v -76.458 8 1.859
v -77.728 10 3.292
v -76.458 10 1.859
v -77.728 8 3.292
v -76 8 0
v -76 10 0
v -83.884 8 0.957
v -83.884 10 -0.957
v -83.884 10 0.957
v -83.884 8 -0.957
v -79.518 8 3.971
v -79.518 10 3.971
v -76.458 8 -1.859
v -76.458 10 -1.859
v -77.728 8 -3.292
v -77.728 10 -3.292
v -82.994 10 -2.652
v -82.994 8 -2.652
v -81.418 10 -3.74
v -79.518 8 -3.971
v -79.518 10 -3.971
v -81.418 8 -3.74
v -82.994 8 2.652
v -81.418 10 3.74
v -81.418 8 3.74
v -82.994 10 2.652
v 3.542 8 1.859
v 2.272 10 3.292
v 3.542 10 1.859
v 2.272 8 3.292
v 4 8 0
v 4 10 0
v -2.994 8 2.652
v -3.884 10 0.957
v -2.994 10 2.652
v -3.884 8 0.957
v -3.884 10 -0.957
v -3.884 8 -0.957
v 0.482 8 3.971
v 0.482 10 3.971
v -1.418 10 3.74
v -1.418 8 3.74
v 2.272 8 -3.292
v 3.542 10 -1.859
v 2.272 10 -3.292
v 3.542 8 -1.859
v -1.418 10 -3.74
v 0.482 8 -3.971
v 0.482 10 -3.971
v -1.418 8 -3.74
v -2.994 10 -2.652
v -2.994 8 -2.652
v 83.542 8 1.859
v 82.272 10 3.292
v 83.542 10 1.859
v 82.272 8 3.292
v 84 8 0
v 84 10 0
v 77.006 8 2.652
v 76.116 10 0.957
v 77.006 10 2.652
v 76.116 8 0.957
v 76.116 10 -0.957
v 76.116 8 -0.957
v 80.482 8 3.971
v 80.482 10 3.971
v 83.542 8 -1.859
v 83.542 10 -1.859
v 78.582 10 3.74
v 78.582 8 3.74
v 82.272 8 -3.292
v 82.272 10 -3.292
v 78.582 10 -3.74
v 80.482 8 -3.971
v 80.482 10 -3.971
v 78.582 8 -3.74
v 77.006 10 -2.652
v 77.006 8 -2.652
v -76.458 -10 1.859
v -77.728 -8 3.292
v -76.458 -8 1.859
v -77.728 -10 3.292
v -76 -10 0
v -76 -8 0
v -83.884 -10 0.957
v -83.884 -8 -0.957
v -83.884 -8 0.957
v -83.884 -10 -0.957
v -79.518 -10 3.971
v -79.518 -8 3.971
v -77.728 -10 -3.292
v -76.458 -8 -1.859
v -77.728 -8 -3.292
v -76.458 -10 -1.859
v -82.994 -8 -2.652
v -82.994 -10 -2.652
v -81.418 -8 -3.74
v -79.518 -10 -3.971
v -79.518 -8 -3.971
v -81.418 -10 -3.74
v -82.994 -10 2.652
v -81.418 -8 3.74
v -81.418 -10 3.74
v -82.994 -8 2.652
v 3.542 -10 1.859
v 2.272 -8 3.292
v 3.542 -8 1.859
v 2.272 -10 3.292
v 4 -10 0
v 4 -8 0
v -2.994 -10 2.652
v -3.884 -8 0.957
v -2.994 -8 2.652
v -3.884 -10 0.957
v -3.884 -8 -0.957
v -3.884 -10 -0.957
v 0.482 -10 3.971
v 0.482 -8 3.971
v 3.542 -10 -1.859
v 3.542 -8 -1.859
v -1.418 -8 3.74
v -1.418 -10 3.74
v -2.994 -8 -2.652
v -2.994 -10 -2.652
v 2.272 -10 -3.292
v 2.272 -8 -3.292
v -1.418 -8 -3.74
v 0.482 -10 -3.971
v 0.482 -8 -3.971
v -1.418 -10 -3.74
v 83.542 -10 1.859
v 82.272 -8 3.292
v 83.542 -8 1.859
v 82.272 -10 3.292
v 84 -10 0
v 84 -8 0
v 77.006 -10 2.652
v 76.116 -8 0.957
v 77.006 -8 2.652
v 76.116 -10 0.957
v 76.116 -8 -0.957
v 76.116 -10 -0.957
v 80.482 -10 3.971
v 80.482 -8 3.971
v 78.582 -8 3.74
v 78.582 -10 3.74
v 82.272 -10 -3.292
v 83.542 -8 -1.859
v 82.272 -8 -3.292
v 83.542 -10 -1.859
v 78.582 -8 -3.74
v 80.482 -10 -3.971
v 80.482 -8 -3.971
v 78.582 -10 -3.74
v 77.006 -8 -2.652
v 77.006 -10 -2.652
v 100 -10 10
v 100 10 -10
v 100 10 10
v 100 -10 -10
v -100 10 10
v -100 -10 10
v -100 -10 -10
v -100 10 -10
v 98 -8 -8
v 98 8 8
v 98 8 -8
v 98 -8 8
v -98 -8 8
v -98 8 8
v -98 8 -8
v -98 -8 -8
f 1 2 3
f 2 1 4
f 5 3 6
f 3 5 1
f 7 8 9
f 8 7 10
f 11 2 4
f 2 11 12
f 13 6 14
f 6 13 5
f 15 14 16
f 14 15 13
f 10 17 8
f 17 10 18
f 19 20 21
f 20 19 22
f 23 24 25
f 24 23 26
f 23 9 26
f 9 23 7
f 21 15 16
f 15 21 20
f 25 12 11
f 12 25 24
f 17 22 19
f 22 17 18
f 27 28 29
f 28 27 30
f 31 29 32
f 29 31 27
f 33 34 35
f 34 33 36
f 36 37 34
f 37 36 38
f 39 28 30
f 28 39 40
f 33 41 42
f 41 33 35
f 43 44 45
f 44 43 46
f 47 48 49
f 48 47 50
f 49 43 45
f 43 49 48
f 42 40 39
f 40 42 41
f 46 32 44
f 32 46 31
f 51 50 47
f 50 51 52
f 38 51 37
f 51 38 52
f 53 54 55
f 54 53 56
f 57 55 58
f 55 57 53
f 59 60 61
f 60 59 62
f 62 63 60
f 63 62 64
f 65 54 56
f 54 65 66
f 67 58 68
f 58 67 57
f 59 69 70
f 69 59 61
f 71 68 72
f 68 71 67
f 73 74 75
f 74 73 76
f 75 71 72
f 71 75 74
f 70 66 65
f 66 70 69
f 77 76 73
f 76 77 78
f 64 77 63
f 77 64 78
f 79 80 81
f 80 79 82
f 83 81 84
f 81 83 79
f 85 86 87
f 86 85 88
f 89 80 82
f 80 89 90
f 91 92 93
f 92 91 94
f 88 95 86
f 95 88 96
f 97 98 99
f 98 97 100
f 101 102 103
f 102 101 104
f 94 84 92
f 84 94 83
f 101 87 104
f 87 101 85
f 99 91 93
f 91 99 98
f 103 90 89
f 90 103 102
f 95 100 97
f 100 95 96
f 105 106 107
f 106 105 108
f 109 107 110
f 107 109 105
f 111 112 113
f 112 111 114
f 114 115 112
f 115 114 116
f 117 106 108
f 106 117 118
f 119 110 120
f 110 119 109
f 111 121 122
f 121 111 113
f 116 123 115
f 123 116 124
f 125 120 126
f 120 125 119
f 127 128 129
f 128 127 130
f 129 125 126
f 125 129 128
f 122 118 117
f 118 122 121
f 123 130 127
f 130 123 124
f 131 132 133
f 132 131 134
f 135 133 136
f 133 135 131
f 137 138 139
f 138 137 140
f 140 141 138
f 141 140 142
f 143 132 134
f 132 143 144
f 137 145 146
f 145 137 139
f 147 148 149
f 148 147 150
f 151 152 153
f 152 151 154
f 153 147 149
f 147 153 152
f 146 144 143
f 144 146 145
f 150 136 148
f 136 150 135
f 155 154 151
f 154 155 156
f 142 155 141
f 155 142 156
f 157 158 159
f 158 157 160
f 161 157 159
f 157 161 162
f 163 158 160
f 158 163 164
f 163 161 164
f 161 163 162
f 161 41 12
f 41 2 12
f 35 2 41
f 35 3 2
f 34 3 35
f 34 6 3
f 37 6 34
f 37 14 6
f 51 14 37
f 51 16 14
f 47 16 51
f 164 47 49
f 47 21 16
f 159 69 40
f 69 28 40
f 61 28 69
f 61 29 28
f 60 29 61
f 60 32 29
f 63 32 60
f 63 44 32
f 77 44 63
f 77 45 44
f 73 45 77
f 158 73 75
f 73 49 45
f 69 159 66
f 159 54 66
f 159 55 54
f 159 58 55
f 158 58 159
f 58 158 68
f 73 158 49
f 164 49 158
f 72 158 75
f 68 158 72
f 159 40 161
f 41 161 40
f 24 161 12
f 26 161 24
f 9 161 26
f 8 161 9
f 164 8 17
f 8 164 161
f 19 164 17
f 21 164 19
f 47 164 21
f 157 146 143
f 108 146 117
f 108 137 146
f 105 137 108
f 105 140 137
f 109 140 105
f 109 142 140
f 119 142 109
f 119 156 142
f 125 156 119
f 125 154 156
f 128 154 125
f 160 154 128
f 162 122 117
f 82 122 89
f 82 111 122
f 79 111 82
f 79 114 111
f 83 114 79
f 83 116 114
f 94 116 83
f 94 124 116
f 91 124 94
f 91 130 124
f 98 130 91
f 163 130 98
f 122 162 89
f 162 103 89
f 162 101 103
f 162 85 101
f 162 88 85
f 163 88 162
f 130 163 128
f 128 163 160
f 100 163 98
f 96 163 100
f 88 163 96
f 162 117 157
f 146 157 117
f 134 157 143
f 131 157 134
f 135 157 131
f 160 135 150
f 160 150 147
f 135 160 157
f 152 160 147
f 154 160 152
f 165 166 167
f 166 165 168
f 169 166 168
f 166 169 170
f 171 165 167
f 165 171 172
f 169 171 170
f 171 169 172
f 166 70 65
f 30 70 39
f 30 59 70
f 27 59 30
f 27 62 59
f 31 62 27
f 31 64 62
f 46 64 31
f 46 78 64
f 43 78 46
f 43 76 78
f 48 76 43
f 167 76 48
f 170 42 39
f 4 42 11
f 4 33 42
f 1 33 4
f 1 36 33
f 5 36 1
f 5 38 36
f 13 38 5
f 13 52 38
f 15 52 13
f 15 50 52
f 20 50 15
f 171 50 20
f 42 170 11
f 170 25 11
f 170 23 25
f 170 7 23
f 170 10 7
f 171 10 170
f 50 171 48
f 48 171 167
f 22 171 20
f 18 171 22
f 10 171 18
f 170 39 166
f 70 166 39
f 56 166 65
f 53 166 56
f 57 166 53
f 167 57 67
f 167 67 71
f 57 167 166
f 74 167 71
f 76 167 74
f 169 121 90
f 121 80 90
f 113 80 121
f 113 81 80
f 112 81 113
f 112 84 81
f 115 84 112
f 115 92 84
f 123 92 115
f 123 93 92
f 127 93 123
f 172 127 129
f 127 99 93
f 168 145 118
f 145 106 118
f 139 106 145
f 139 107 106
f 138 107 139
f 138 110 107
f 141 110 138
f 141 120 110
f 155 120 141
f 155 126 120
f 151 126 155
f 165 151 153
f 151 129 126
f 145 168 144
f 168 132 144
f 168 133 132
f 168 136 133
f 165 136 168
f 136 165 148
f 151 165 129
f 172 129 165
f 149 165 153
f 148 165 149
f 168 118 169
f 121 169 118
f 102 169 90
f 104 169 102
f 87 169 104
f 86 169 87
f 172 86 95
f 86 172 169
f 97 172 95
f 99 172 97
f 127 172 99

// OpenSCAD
// Parameters for the rectangular hollow component
length = 200; // Increased length to match the original model
width = 20;   // Outer width of the prism
height = 20;  // Outer height of the prism
thickness = 2; // Wall thickness of the hollow prism
hole_diameter = 8; // Diameter of the circular holes
hole_spacing = 80; // Adjusted spacing between the holes to match the original model

module rectangular_hollow_component() {
    // Outer rectangular prism
    difference() {
        cube([length, width, height], center = true);
        
        // Inner hollow space
        translate([0, 0, 0])
            cube([length - 2 * thickness, width - 2 * thickness, height - 2 * thickness], center = true);
        
        // Circular holes on one face
        for (i = [-1, 0, 1]) { // Adjusted to create evenly spaced holes along the length
            translate([i * hole_spacing, width / 2, 0])
                rotate([90, 0, 0])
                    cylinder(r = hole_diameter / 2, h = width + 1, center = true);
        }
        
        // Circular holes on the opposite face
        for (i = [-1, 0, 1]) { // Adjusted to create evenly spaced holes along the length
            translate([i * hole_spacing, -width / 2, 0])
                rotate([90, 0, 0])
                    cylinder(r = hole_diameter / 2, h = width + 1, center = true);
        }
    }
}

// Render the rectangular hollow component
rectangular_hollow_component();
